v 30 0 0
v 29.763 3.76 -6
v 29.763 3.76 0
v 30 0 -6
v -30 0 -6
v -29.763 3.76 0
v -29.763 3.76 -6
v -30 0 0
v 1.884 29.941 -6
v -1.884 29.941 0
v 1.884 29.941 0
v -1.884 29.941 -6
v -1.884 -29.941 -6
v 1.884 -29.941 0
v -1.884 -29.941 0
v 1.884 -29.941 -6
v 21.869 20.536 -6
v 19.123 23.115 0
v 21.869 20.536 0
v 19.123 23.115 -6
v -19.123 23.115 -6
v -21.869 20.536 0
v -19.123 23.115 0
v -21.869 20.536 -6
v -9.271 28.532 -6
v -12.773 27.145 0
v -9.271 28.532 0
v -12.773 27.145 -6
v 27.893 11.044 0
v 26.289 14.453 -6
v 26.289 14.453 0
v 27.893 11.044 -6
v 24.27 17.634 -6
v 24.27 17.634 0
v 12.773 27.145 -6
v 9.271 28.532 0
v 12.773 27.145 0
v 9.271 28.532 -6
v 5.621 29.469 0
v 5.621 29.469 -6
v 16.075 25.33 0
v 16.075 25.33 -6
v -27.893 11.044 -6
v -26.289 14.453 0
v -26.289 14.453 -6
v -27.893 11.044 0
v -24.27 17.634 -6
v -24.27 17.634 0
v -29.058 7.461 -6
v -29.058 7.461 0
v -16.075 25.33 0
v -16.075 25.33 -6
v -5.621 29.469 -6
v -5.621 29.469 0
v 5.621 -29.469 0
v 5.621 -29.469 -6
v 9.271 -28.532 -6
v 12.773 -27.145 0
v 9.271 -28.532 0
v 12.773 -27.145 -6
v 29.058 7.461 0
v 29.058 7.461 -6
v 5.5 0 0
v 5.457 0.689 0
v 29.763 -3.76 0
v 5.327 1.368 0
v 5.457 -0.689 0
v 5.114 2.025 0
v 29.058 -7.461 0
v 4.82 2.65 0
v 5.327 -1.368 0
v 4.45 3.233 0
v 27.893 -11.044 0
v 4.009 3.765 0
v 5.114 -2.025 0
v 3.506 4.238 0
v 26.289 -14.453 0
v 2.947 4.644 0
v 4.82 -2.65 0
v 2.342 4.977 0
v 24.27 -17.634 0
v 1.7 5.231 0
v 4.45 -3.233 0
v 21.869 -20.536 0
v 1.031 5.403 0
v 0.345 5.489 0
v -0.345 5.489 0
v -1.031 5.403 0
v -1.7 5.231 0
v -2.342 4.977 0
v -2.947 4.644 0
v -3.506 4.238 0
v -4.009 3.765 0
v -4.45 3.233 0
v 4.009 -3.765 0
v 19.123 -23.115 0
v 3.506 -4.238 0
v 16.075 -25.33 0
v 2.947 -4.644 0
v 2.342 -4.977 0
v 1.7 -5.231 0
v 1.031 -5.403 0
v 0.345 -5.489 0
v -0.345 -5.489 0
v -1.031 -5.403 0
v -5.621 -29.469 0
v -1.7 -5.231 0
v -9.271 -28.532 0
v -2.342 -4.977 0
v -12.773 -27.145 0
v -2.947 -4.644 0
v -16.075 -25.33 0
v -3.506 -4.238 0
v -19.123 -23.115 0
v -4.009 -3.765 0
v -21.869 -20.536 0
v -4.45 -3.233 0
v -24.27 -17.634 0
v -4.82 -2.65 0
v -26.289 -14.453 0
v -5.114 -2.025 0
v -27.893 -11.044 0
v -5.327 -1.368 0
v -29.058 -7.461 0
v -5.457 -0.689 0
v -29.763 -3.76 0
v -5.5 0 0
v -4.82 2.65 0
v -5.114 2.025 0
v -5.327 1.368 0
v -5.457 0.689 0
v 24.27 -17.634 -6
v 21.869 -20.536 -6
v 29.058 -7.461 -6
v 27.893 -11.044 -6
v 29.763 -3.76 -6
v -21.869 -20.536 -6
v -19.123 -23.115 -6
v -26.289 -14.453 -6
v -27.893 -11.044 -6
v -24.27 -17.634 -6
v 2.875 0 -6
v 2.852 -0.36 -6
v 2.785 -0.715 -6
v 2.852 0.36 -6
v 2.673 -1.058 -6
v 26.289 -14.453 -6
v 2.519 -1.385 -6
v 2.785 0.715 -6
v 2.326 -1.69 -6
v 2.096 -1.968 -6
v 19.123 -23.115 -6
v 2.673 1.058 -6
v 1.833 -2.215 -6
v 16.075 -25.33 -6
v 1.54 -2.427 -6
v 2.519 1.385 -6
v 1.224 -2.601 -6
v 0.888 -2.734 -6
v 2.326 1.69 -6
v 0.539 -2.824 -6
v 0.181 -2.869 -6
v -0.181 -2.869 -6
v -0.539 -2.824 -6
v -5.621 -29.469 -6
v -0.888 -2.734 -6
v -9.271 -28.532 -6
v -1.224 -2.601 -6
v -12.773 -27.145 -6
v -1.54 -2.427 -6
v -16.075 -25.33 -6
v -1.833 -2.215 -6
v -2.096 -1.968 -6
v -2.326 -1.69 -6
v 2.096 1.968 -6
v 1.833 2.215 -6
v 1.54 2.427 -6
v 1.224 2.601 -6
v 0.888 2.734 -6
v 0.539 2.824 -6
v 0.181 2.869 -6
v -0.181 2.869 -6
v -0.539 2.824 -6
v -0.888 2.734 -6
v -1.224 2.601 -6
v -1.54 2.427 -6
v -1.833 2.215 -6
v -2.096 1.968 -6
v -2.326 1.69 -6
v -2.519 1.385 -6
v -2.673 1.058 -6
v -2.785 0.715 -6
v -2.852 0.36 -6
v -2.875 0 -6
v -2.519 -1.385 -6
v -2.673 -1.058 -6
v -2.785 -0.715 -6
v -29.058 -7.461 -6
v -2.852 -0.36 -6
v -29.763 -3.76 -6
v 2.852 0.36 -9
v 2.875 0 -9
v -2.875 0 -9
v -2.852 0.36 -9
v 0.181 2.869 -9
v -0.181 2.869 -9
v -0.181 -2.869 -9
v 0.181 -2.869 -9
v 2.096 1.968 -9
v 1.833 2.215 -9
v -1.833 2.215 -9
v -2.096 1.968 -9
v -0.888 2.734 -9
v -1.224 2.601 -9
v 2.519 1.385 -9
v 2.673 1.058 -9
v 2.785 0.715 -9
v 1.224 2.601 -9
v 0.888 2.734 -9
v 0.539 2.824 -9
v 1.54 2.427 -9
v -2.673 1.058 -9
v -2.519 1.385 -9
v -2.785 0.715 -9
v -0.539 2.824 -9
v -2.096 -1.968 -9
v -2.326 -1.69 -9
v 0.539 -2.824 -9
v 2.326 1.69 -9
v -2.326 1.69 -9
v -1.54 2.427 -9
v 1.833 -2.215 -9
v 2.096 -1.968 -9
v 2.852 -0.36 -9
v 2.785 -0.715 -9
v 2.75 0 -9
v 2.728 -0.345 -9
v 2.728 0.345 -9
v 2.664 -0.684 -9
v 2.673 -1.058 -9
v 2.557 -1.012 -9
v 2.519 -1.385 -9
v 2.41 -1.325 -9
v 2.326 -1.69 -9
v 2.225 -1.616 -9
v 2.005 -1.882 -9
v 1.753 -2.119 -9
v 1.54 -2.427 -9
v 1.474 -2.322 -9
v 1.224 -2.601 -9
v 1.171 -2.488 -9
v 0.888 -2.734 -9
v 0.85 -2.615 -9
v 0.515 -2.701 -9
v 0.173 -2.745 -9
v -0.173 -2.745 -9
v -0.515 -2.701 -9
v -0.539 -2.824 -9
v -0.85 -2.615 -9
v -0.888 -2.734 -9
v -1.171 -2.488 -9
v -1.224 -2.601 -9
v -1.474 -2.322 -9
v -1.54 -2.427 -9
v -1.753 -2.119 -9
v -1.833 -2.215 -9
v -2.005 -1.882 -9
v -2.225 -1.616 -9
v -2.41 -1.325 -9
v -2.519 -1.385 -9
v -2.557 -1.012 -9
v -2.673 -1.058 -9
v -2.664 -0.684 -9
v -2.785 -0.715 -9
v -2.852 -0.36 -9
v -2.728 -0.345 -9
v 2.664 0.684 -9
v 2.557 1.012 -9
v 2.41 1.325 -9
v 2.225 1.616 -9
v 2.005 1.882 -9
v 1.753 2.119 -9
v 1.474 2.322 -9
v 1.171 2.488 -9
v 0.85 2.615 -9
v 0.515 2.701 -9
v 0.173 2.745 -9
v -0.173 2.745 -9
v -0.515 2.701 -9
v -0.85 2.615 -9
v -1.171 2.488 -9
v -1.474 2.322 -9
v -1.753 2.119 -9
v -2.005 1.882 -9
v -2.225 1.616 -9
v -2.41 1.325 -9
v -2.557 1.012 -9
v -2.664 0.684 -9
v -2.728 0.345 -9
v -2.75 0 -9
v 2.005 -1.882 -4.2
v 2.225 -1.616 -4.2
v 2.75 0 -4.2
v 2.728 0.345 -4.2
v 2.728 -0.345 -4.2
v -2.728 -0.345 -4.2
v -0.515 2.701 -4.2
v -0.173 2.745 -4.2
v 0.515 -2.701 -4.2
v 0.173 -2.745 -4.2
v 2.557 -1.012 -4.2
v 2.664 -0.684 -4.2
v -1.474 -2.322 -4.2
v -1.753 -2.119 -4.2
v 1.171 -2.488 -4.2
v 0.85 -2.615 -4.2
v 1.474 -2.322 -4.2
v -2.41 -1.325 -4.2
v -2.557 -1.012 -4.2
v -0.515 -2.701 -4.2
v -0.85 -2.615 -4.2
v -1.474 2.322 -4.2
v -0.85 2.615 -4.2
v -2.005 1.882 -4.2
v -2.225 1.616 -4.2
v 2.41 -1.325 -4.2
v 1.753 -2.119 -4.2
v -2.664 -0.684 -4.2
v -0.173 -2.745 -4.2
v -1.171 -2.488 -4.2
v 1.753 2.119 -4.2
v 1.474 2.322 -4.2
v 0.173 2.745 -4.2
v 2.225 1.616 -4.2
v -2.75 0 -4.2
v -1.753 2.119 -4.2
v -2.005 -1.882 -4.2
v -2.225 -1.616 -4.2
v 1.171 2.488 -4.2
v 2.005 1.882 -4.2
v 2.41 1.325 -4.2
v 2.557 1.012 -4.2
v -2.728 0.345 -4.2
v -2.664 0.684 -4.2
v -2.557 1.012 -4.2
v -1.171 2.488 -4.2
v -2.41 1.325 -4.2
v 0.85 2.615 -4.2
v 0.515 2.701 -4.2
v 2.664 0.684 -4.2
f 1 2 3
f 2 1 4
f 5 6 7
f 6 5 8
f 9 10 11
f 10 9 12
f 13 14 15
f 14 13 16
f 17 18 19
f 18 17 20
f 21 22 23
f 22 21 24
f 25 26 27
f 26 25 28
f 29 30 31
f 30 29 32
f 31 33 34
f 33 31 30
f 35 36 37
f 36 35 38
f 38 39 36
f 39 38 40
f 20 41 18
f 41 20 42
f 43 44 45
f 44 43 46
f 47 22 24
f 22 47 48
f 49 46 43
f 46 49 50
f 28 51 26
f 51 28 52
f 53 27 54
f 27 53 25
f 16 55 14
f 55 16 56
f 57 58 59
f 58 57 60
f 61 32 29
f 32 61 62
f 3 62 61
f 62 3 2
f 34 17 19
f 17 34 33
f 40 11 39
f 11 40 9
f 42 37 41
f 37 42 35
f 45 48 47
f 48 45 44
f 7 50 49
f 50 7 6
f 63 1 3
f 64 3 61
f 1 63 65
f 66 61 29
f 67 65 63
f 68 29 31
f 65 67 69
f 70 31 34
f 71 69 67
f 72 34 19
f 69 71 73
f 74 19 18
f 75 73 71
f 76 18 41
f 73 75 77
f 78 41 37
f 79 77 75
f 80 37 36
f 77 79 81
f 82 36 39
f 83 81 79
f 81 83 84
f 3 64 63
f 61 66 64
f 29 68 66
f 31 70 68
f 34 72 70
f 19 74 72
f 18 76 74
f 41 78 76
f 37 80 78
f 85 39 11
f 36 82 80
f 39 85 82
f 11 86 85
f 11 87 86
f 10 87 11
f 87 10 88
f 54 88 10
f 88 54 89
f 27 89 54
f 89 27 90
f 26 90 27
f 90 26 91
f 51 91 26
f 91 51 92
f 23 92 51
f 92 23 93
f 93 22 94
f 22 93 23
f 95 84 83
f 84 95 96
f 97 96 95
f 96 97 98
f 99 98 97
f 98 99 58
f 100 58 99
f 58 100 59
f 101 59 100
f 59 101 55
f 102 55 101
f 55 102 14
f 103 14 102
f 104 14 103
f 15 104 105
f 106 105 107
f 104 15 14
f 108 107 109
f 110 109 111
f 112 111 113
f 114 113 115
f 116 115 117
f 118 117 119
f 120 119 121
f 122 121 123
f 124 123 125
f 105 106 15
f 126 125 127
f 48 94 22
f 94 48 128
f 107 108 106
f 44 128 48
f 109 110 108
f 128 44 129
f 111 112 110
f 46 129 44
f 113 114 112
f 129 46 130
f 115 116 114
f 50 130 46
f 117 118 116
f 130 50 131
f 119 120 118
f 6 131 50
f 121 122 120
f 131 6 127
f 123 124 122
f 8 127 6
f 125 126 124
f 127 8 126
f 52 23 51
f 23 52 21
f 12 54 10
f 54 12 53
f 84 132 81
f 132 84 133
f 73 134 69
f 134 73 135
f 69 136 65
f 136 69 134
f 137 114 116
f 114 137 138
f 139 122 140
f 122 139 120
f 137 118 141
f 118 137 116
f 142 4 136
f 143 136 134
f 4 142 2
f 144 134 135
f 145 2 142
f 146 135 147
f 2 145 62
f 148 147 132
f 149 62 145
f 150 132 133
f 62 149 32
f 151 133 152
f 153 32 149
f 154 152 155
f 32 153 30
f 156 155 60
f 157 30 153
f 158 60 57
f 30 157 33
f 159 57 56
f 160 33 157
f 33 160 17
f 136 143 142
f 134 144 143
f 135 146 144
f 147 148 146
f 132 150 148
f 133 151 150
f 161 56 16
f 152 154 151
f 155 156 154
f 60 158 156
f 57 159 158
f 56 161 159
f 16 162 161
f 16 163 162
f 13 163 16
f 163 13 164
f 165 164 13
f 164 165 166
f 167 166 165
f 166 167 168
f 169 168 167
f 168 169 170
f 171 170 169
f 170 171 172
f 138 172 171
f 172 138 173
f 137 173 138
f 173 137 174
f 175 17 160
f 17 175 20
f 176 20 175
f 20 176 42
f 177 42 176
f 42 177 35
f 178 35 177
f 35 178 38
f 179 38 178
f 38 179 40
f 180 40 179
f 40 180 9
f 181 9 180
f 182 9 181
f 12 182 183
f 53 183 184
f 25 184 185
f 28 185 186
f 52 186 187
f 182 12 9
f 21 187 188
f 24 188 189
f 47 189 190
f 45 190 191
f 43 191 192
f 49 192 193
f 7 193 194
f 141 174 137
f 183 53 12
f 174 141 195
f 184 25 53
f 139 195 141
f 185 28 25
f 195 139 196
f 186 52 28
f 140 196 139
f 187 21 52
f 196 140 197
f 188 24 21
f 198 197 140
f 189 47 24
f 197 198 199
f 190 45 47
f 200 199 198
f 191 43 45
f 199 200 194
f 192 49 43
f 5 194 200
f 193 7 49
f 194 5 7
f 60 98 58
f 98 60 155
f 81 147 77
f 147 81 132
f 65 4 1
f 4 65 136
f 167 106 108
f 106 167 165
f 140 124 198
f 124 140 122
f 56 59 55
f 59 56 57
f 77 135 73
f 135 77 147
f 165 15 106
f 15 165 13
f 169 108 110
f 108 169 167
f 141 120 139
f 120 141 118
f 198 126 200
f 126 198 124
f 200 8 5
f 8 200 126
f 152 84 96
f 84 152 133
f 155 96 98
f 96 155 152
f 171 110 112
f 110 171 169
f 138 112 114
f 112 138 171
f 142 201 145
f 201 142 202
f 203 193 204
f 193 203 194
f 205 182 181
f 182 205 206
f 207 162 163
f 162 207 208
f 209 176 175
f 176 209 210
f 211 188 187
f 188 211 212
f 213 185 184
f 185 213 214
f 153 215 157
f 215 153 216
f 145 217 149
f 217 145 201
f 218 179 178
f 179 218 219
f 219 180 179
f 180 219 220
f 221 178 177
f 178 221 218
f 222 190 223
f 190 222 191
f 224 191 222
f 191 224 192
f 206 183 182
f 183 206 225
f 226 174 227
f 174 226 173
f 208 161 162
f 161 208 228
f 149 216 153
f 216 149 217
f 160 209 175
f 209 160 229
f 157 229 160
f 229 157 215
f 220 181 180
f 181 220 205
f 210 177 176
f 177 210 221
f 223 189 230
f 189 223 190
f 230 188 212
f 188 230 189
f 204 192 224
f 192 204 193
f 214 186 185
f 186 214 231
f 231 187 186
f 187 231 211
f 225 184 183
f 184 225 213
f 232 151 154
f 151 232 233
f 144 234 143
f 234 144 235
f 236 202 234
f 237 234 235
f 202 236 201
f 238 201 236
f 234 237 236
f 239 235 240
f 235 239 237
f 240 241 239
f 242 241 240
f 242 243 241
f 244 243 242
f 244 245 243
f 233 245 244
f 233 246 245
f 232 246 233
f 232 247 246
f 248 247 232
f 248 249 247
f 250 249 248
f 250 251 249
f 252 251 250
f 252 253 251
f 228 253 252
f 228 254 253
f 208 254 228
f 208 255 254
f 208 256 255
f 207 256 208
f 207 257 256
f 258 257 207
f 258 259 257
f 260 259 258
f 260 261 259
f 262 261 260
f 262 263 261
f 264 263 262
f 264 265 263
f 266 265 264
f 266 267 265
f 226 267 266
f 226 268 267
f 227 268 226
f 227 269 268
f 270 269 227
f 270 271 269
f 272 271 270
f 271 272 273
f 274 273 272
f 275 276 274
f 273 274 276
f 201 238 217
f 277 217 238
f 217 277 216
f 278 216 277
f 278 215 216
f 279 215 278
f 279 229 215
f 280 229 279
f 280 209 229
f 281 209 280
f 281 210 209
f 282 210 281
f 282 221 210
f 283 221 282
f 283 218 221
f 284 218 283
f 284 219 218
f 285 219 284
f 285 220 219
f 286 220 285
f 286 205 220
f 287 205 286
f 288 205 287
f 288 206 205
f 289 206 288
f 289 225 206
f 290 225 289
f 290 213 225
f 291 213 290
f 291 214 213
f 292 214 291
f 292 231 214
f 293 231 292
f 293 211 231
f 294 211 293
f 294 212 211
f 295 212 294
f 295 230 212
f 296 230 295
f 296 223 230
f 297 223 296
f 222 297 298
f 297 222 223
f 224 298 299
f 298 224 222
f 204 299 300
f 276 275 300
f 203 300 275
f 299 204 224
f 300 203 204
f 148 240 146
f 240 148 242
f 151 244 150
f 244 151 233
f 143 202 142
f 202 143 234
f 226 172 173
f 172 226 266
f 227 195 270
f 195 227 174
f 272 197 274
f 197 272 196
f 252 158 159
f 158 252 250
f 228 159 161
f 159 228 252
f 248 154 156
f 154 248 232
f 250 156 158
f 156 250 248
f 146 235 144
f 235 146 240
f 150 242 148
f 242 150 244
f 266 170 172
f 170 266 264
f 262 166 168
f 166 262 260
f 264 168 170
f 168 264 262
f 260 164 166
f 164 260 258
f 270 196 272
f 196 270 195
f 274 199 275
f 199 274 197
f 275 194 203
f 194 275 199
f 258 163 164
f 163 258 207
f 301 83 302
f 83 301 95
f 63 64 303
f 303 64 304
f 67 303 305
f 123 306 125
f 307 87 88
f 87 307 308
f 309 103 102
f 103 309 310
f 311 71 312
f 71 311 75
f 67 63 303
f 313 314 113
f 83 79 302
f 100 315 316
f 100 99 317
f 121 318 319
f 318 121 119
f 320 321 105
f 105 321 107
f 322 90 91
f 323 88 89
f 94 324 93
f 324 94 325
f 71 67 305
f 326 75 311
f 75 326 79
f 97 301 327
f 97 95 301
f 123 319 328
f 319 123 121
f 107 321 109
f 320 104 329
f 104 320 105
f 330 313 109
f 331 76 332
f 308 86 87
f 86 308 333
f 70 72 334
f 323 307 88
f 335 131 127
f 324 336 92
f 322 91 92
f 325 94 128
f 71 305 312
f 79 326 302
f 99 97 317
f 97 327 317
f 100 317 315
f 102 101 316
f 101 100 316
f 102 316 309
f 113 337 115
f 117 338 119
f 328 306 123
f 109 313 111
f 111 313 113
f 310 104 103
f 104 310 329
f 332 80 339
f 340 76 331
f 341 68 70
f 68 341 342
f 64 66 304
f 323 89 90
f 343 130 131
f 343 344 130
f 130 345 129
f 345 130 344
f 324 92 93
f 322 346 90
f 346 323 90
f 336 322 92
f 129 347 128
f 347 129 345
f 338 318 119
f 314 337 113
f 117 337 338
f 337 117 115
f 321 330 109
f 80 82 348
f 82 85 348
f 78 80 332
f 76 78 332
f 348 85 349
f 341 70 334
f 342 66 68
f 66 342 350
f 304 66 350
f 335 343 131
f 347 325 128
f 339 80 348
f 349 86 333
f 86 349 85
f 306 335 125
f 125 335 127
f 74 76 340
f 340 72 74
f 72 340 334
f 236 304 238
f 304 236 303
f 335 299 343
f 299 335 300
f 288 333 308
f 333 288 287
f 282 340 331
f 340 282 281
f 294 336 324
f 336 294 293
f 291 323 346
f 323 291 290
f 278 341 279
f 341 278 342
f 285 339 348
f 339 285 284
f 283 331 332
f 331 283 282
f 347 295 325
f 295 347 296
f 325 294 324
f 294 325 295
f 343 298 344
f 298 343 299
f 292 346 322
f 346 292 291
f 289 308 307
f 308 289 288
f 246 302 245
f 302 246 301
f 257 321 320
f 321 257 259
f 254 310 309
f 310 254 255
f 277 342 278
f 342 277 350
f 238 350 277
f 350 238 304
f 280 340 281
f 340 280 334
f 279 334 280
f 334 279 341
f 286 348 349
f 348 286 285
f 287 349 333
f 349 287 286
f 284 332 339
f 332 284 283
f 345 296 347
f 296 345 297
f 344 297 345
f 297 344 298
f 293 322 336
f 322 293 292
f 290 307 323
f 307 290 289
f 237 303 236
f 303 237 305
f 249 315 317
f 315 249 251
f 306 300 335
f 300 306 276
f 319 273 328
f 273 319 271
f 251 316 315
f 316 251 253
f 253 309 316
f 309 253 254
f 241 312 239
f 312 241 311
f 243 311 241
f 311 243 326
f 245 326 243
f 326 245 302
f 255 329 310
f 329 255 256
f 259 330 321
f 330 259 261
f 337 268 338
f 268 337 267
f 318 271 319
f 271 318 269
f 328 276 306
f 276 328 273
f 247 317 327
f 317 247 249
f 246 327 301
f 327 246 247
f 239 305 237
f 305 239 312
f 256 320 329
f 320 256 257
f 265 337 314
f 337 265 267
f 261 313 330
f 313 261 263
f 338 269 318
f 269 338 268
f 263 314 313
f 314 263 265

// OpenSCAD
$fn = 50;


difference() {
	union() {
		translate(v = [0, 0, -6.0000000000]) {
			cylinder(h = 6, r = 30.0000000000);
		}
		translate(v = [0, 0, -9.0000000000]) {
			cylinder(h = 9, r = 2.8750000000);
		}
	}
	union() {
		translate(v = [0, 0, 0]) {
			rotate(a = [0, 0, 0]) {
				difference() {
					union() {
						translate(v = [0, 0, -9.0000000000]) {
							cylinder(h = 9, r = 2.2500000000);
						}
						translate(v = [0, 0, -4.2000000000]) {
							cylinder(h = 4.2000000000, r1 = 2.7500000000, r2 = 5.5000000000);
						}
						translate(v = [0, 0, -9.0000000000]) {
							cylinder(h = 9, r = 2.7500000000);
						}
						translate(v = [0, 0, -9.0000000000]) {
							cylinder(h = 9, r = 2.2500000000);
						}
					}
					union();
				}
			}
		}
	}
}
